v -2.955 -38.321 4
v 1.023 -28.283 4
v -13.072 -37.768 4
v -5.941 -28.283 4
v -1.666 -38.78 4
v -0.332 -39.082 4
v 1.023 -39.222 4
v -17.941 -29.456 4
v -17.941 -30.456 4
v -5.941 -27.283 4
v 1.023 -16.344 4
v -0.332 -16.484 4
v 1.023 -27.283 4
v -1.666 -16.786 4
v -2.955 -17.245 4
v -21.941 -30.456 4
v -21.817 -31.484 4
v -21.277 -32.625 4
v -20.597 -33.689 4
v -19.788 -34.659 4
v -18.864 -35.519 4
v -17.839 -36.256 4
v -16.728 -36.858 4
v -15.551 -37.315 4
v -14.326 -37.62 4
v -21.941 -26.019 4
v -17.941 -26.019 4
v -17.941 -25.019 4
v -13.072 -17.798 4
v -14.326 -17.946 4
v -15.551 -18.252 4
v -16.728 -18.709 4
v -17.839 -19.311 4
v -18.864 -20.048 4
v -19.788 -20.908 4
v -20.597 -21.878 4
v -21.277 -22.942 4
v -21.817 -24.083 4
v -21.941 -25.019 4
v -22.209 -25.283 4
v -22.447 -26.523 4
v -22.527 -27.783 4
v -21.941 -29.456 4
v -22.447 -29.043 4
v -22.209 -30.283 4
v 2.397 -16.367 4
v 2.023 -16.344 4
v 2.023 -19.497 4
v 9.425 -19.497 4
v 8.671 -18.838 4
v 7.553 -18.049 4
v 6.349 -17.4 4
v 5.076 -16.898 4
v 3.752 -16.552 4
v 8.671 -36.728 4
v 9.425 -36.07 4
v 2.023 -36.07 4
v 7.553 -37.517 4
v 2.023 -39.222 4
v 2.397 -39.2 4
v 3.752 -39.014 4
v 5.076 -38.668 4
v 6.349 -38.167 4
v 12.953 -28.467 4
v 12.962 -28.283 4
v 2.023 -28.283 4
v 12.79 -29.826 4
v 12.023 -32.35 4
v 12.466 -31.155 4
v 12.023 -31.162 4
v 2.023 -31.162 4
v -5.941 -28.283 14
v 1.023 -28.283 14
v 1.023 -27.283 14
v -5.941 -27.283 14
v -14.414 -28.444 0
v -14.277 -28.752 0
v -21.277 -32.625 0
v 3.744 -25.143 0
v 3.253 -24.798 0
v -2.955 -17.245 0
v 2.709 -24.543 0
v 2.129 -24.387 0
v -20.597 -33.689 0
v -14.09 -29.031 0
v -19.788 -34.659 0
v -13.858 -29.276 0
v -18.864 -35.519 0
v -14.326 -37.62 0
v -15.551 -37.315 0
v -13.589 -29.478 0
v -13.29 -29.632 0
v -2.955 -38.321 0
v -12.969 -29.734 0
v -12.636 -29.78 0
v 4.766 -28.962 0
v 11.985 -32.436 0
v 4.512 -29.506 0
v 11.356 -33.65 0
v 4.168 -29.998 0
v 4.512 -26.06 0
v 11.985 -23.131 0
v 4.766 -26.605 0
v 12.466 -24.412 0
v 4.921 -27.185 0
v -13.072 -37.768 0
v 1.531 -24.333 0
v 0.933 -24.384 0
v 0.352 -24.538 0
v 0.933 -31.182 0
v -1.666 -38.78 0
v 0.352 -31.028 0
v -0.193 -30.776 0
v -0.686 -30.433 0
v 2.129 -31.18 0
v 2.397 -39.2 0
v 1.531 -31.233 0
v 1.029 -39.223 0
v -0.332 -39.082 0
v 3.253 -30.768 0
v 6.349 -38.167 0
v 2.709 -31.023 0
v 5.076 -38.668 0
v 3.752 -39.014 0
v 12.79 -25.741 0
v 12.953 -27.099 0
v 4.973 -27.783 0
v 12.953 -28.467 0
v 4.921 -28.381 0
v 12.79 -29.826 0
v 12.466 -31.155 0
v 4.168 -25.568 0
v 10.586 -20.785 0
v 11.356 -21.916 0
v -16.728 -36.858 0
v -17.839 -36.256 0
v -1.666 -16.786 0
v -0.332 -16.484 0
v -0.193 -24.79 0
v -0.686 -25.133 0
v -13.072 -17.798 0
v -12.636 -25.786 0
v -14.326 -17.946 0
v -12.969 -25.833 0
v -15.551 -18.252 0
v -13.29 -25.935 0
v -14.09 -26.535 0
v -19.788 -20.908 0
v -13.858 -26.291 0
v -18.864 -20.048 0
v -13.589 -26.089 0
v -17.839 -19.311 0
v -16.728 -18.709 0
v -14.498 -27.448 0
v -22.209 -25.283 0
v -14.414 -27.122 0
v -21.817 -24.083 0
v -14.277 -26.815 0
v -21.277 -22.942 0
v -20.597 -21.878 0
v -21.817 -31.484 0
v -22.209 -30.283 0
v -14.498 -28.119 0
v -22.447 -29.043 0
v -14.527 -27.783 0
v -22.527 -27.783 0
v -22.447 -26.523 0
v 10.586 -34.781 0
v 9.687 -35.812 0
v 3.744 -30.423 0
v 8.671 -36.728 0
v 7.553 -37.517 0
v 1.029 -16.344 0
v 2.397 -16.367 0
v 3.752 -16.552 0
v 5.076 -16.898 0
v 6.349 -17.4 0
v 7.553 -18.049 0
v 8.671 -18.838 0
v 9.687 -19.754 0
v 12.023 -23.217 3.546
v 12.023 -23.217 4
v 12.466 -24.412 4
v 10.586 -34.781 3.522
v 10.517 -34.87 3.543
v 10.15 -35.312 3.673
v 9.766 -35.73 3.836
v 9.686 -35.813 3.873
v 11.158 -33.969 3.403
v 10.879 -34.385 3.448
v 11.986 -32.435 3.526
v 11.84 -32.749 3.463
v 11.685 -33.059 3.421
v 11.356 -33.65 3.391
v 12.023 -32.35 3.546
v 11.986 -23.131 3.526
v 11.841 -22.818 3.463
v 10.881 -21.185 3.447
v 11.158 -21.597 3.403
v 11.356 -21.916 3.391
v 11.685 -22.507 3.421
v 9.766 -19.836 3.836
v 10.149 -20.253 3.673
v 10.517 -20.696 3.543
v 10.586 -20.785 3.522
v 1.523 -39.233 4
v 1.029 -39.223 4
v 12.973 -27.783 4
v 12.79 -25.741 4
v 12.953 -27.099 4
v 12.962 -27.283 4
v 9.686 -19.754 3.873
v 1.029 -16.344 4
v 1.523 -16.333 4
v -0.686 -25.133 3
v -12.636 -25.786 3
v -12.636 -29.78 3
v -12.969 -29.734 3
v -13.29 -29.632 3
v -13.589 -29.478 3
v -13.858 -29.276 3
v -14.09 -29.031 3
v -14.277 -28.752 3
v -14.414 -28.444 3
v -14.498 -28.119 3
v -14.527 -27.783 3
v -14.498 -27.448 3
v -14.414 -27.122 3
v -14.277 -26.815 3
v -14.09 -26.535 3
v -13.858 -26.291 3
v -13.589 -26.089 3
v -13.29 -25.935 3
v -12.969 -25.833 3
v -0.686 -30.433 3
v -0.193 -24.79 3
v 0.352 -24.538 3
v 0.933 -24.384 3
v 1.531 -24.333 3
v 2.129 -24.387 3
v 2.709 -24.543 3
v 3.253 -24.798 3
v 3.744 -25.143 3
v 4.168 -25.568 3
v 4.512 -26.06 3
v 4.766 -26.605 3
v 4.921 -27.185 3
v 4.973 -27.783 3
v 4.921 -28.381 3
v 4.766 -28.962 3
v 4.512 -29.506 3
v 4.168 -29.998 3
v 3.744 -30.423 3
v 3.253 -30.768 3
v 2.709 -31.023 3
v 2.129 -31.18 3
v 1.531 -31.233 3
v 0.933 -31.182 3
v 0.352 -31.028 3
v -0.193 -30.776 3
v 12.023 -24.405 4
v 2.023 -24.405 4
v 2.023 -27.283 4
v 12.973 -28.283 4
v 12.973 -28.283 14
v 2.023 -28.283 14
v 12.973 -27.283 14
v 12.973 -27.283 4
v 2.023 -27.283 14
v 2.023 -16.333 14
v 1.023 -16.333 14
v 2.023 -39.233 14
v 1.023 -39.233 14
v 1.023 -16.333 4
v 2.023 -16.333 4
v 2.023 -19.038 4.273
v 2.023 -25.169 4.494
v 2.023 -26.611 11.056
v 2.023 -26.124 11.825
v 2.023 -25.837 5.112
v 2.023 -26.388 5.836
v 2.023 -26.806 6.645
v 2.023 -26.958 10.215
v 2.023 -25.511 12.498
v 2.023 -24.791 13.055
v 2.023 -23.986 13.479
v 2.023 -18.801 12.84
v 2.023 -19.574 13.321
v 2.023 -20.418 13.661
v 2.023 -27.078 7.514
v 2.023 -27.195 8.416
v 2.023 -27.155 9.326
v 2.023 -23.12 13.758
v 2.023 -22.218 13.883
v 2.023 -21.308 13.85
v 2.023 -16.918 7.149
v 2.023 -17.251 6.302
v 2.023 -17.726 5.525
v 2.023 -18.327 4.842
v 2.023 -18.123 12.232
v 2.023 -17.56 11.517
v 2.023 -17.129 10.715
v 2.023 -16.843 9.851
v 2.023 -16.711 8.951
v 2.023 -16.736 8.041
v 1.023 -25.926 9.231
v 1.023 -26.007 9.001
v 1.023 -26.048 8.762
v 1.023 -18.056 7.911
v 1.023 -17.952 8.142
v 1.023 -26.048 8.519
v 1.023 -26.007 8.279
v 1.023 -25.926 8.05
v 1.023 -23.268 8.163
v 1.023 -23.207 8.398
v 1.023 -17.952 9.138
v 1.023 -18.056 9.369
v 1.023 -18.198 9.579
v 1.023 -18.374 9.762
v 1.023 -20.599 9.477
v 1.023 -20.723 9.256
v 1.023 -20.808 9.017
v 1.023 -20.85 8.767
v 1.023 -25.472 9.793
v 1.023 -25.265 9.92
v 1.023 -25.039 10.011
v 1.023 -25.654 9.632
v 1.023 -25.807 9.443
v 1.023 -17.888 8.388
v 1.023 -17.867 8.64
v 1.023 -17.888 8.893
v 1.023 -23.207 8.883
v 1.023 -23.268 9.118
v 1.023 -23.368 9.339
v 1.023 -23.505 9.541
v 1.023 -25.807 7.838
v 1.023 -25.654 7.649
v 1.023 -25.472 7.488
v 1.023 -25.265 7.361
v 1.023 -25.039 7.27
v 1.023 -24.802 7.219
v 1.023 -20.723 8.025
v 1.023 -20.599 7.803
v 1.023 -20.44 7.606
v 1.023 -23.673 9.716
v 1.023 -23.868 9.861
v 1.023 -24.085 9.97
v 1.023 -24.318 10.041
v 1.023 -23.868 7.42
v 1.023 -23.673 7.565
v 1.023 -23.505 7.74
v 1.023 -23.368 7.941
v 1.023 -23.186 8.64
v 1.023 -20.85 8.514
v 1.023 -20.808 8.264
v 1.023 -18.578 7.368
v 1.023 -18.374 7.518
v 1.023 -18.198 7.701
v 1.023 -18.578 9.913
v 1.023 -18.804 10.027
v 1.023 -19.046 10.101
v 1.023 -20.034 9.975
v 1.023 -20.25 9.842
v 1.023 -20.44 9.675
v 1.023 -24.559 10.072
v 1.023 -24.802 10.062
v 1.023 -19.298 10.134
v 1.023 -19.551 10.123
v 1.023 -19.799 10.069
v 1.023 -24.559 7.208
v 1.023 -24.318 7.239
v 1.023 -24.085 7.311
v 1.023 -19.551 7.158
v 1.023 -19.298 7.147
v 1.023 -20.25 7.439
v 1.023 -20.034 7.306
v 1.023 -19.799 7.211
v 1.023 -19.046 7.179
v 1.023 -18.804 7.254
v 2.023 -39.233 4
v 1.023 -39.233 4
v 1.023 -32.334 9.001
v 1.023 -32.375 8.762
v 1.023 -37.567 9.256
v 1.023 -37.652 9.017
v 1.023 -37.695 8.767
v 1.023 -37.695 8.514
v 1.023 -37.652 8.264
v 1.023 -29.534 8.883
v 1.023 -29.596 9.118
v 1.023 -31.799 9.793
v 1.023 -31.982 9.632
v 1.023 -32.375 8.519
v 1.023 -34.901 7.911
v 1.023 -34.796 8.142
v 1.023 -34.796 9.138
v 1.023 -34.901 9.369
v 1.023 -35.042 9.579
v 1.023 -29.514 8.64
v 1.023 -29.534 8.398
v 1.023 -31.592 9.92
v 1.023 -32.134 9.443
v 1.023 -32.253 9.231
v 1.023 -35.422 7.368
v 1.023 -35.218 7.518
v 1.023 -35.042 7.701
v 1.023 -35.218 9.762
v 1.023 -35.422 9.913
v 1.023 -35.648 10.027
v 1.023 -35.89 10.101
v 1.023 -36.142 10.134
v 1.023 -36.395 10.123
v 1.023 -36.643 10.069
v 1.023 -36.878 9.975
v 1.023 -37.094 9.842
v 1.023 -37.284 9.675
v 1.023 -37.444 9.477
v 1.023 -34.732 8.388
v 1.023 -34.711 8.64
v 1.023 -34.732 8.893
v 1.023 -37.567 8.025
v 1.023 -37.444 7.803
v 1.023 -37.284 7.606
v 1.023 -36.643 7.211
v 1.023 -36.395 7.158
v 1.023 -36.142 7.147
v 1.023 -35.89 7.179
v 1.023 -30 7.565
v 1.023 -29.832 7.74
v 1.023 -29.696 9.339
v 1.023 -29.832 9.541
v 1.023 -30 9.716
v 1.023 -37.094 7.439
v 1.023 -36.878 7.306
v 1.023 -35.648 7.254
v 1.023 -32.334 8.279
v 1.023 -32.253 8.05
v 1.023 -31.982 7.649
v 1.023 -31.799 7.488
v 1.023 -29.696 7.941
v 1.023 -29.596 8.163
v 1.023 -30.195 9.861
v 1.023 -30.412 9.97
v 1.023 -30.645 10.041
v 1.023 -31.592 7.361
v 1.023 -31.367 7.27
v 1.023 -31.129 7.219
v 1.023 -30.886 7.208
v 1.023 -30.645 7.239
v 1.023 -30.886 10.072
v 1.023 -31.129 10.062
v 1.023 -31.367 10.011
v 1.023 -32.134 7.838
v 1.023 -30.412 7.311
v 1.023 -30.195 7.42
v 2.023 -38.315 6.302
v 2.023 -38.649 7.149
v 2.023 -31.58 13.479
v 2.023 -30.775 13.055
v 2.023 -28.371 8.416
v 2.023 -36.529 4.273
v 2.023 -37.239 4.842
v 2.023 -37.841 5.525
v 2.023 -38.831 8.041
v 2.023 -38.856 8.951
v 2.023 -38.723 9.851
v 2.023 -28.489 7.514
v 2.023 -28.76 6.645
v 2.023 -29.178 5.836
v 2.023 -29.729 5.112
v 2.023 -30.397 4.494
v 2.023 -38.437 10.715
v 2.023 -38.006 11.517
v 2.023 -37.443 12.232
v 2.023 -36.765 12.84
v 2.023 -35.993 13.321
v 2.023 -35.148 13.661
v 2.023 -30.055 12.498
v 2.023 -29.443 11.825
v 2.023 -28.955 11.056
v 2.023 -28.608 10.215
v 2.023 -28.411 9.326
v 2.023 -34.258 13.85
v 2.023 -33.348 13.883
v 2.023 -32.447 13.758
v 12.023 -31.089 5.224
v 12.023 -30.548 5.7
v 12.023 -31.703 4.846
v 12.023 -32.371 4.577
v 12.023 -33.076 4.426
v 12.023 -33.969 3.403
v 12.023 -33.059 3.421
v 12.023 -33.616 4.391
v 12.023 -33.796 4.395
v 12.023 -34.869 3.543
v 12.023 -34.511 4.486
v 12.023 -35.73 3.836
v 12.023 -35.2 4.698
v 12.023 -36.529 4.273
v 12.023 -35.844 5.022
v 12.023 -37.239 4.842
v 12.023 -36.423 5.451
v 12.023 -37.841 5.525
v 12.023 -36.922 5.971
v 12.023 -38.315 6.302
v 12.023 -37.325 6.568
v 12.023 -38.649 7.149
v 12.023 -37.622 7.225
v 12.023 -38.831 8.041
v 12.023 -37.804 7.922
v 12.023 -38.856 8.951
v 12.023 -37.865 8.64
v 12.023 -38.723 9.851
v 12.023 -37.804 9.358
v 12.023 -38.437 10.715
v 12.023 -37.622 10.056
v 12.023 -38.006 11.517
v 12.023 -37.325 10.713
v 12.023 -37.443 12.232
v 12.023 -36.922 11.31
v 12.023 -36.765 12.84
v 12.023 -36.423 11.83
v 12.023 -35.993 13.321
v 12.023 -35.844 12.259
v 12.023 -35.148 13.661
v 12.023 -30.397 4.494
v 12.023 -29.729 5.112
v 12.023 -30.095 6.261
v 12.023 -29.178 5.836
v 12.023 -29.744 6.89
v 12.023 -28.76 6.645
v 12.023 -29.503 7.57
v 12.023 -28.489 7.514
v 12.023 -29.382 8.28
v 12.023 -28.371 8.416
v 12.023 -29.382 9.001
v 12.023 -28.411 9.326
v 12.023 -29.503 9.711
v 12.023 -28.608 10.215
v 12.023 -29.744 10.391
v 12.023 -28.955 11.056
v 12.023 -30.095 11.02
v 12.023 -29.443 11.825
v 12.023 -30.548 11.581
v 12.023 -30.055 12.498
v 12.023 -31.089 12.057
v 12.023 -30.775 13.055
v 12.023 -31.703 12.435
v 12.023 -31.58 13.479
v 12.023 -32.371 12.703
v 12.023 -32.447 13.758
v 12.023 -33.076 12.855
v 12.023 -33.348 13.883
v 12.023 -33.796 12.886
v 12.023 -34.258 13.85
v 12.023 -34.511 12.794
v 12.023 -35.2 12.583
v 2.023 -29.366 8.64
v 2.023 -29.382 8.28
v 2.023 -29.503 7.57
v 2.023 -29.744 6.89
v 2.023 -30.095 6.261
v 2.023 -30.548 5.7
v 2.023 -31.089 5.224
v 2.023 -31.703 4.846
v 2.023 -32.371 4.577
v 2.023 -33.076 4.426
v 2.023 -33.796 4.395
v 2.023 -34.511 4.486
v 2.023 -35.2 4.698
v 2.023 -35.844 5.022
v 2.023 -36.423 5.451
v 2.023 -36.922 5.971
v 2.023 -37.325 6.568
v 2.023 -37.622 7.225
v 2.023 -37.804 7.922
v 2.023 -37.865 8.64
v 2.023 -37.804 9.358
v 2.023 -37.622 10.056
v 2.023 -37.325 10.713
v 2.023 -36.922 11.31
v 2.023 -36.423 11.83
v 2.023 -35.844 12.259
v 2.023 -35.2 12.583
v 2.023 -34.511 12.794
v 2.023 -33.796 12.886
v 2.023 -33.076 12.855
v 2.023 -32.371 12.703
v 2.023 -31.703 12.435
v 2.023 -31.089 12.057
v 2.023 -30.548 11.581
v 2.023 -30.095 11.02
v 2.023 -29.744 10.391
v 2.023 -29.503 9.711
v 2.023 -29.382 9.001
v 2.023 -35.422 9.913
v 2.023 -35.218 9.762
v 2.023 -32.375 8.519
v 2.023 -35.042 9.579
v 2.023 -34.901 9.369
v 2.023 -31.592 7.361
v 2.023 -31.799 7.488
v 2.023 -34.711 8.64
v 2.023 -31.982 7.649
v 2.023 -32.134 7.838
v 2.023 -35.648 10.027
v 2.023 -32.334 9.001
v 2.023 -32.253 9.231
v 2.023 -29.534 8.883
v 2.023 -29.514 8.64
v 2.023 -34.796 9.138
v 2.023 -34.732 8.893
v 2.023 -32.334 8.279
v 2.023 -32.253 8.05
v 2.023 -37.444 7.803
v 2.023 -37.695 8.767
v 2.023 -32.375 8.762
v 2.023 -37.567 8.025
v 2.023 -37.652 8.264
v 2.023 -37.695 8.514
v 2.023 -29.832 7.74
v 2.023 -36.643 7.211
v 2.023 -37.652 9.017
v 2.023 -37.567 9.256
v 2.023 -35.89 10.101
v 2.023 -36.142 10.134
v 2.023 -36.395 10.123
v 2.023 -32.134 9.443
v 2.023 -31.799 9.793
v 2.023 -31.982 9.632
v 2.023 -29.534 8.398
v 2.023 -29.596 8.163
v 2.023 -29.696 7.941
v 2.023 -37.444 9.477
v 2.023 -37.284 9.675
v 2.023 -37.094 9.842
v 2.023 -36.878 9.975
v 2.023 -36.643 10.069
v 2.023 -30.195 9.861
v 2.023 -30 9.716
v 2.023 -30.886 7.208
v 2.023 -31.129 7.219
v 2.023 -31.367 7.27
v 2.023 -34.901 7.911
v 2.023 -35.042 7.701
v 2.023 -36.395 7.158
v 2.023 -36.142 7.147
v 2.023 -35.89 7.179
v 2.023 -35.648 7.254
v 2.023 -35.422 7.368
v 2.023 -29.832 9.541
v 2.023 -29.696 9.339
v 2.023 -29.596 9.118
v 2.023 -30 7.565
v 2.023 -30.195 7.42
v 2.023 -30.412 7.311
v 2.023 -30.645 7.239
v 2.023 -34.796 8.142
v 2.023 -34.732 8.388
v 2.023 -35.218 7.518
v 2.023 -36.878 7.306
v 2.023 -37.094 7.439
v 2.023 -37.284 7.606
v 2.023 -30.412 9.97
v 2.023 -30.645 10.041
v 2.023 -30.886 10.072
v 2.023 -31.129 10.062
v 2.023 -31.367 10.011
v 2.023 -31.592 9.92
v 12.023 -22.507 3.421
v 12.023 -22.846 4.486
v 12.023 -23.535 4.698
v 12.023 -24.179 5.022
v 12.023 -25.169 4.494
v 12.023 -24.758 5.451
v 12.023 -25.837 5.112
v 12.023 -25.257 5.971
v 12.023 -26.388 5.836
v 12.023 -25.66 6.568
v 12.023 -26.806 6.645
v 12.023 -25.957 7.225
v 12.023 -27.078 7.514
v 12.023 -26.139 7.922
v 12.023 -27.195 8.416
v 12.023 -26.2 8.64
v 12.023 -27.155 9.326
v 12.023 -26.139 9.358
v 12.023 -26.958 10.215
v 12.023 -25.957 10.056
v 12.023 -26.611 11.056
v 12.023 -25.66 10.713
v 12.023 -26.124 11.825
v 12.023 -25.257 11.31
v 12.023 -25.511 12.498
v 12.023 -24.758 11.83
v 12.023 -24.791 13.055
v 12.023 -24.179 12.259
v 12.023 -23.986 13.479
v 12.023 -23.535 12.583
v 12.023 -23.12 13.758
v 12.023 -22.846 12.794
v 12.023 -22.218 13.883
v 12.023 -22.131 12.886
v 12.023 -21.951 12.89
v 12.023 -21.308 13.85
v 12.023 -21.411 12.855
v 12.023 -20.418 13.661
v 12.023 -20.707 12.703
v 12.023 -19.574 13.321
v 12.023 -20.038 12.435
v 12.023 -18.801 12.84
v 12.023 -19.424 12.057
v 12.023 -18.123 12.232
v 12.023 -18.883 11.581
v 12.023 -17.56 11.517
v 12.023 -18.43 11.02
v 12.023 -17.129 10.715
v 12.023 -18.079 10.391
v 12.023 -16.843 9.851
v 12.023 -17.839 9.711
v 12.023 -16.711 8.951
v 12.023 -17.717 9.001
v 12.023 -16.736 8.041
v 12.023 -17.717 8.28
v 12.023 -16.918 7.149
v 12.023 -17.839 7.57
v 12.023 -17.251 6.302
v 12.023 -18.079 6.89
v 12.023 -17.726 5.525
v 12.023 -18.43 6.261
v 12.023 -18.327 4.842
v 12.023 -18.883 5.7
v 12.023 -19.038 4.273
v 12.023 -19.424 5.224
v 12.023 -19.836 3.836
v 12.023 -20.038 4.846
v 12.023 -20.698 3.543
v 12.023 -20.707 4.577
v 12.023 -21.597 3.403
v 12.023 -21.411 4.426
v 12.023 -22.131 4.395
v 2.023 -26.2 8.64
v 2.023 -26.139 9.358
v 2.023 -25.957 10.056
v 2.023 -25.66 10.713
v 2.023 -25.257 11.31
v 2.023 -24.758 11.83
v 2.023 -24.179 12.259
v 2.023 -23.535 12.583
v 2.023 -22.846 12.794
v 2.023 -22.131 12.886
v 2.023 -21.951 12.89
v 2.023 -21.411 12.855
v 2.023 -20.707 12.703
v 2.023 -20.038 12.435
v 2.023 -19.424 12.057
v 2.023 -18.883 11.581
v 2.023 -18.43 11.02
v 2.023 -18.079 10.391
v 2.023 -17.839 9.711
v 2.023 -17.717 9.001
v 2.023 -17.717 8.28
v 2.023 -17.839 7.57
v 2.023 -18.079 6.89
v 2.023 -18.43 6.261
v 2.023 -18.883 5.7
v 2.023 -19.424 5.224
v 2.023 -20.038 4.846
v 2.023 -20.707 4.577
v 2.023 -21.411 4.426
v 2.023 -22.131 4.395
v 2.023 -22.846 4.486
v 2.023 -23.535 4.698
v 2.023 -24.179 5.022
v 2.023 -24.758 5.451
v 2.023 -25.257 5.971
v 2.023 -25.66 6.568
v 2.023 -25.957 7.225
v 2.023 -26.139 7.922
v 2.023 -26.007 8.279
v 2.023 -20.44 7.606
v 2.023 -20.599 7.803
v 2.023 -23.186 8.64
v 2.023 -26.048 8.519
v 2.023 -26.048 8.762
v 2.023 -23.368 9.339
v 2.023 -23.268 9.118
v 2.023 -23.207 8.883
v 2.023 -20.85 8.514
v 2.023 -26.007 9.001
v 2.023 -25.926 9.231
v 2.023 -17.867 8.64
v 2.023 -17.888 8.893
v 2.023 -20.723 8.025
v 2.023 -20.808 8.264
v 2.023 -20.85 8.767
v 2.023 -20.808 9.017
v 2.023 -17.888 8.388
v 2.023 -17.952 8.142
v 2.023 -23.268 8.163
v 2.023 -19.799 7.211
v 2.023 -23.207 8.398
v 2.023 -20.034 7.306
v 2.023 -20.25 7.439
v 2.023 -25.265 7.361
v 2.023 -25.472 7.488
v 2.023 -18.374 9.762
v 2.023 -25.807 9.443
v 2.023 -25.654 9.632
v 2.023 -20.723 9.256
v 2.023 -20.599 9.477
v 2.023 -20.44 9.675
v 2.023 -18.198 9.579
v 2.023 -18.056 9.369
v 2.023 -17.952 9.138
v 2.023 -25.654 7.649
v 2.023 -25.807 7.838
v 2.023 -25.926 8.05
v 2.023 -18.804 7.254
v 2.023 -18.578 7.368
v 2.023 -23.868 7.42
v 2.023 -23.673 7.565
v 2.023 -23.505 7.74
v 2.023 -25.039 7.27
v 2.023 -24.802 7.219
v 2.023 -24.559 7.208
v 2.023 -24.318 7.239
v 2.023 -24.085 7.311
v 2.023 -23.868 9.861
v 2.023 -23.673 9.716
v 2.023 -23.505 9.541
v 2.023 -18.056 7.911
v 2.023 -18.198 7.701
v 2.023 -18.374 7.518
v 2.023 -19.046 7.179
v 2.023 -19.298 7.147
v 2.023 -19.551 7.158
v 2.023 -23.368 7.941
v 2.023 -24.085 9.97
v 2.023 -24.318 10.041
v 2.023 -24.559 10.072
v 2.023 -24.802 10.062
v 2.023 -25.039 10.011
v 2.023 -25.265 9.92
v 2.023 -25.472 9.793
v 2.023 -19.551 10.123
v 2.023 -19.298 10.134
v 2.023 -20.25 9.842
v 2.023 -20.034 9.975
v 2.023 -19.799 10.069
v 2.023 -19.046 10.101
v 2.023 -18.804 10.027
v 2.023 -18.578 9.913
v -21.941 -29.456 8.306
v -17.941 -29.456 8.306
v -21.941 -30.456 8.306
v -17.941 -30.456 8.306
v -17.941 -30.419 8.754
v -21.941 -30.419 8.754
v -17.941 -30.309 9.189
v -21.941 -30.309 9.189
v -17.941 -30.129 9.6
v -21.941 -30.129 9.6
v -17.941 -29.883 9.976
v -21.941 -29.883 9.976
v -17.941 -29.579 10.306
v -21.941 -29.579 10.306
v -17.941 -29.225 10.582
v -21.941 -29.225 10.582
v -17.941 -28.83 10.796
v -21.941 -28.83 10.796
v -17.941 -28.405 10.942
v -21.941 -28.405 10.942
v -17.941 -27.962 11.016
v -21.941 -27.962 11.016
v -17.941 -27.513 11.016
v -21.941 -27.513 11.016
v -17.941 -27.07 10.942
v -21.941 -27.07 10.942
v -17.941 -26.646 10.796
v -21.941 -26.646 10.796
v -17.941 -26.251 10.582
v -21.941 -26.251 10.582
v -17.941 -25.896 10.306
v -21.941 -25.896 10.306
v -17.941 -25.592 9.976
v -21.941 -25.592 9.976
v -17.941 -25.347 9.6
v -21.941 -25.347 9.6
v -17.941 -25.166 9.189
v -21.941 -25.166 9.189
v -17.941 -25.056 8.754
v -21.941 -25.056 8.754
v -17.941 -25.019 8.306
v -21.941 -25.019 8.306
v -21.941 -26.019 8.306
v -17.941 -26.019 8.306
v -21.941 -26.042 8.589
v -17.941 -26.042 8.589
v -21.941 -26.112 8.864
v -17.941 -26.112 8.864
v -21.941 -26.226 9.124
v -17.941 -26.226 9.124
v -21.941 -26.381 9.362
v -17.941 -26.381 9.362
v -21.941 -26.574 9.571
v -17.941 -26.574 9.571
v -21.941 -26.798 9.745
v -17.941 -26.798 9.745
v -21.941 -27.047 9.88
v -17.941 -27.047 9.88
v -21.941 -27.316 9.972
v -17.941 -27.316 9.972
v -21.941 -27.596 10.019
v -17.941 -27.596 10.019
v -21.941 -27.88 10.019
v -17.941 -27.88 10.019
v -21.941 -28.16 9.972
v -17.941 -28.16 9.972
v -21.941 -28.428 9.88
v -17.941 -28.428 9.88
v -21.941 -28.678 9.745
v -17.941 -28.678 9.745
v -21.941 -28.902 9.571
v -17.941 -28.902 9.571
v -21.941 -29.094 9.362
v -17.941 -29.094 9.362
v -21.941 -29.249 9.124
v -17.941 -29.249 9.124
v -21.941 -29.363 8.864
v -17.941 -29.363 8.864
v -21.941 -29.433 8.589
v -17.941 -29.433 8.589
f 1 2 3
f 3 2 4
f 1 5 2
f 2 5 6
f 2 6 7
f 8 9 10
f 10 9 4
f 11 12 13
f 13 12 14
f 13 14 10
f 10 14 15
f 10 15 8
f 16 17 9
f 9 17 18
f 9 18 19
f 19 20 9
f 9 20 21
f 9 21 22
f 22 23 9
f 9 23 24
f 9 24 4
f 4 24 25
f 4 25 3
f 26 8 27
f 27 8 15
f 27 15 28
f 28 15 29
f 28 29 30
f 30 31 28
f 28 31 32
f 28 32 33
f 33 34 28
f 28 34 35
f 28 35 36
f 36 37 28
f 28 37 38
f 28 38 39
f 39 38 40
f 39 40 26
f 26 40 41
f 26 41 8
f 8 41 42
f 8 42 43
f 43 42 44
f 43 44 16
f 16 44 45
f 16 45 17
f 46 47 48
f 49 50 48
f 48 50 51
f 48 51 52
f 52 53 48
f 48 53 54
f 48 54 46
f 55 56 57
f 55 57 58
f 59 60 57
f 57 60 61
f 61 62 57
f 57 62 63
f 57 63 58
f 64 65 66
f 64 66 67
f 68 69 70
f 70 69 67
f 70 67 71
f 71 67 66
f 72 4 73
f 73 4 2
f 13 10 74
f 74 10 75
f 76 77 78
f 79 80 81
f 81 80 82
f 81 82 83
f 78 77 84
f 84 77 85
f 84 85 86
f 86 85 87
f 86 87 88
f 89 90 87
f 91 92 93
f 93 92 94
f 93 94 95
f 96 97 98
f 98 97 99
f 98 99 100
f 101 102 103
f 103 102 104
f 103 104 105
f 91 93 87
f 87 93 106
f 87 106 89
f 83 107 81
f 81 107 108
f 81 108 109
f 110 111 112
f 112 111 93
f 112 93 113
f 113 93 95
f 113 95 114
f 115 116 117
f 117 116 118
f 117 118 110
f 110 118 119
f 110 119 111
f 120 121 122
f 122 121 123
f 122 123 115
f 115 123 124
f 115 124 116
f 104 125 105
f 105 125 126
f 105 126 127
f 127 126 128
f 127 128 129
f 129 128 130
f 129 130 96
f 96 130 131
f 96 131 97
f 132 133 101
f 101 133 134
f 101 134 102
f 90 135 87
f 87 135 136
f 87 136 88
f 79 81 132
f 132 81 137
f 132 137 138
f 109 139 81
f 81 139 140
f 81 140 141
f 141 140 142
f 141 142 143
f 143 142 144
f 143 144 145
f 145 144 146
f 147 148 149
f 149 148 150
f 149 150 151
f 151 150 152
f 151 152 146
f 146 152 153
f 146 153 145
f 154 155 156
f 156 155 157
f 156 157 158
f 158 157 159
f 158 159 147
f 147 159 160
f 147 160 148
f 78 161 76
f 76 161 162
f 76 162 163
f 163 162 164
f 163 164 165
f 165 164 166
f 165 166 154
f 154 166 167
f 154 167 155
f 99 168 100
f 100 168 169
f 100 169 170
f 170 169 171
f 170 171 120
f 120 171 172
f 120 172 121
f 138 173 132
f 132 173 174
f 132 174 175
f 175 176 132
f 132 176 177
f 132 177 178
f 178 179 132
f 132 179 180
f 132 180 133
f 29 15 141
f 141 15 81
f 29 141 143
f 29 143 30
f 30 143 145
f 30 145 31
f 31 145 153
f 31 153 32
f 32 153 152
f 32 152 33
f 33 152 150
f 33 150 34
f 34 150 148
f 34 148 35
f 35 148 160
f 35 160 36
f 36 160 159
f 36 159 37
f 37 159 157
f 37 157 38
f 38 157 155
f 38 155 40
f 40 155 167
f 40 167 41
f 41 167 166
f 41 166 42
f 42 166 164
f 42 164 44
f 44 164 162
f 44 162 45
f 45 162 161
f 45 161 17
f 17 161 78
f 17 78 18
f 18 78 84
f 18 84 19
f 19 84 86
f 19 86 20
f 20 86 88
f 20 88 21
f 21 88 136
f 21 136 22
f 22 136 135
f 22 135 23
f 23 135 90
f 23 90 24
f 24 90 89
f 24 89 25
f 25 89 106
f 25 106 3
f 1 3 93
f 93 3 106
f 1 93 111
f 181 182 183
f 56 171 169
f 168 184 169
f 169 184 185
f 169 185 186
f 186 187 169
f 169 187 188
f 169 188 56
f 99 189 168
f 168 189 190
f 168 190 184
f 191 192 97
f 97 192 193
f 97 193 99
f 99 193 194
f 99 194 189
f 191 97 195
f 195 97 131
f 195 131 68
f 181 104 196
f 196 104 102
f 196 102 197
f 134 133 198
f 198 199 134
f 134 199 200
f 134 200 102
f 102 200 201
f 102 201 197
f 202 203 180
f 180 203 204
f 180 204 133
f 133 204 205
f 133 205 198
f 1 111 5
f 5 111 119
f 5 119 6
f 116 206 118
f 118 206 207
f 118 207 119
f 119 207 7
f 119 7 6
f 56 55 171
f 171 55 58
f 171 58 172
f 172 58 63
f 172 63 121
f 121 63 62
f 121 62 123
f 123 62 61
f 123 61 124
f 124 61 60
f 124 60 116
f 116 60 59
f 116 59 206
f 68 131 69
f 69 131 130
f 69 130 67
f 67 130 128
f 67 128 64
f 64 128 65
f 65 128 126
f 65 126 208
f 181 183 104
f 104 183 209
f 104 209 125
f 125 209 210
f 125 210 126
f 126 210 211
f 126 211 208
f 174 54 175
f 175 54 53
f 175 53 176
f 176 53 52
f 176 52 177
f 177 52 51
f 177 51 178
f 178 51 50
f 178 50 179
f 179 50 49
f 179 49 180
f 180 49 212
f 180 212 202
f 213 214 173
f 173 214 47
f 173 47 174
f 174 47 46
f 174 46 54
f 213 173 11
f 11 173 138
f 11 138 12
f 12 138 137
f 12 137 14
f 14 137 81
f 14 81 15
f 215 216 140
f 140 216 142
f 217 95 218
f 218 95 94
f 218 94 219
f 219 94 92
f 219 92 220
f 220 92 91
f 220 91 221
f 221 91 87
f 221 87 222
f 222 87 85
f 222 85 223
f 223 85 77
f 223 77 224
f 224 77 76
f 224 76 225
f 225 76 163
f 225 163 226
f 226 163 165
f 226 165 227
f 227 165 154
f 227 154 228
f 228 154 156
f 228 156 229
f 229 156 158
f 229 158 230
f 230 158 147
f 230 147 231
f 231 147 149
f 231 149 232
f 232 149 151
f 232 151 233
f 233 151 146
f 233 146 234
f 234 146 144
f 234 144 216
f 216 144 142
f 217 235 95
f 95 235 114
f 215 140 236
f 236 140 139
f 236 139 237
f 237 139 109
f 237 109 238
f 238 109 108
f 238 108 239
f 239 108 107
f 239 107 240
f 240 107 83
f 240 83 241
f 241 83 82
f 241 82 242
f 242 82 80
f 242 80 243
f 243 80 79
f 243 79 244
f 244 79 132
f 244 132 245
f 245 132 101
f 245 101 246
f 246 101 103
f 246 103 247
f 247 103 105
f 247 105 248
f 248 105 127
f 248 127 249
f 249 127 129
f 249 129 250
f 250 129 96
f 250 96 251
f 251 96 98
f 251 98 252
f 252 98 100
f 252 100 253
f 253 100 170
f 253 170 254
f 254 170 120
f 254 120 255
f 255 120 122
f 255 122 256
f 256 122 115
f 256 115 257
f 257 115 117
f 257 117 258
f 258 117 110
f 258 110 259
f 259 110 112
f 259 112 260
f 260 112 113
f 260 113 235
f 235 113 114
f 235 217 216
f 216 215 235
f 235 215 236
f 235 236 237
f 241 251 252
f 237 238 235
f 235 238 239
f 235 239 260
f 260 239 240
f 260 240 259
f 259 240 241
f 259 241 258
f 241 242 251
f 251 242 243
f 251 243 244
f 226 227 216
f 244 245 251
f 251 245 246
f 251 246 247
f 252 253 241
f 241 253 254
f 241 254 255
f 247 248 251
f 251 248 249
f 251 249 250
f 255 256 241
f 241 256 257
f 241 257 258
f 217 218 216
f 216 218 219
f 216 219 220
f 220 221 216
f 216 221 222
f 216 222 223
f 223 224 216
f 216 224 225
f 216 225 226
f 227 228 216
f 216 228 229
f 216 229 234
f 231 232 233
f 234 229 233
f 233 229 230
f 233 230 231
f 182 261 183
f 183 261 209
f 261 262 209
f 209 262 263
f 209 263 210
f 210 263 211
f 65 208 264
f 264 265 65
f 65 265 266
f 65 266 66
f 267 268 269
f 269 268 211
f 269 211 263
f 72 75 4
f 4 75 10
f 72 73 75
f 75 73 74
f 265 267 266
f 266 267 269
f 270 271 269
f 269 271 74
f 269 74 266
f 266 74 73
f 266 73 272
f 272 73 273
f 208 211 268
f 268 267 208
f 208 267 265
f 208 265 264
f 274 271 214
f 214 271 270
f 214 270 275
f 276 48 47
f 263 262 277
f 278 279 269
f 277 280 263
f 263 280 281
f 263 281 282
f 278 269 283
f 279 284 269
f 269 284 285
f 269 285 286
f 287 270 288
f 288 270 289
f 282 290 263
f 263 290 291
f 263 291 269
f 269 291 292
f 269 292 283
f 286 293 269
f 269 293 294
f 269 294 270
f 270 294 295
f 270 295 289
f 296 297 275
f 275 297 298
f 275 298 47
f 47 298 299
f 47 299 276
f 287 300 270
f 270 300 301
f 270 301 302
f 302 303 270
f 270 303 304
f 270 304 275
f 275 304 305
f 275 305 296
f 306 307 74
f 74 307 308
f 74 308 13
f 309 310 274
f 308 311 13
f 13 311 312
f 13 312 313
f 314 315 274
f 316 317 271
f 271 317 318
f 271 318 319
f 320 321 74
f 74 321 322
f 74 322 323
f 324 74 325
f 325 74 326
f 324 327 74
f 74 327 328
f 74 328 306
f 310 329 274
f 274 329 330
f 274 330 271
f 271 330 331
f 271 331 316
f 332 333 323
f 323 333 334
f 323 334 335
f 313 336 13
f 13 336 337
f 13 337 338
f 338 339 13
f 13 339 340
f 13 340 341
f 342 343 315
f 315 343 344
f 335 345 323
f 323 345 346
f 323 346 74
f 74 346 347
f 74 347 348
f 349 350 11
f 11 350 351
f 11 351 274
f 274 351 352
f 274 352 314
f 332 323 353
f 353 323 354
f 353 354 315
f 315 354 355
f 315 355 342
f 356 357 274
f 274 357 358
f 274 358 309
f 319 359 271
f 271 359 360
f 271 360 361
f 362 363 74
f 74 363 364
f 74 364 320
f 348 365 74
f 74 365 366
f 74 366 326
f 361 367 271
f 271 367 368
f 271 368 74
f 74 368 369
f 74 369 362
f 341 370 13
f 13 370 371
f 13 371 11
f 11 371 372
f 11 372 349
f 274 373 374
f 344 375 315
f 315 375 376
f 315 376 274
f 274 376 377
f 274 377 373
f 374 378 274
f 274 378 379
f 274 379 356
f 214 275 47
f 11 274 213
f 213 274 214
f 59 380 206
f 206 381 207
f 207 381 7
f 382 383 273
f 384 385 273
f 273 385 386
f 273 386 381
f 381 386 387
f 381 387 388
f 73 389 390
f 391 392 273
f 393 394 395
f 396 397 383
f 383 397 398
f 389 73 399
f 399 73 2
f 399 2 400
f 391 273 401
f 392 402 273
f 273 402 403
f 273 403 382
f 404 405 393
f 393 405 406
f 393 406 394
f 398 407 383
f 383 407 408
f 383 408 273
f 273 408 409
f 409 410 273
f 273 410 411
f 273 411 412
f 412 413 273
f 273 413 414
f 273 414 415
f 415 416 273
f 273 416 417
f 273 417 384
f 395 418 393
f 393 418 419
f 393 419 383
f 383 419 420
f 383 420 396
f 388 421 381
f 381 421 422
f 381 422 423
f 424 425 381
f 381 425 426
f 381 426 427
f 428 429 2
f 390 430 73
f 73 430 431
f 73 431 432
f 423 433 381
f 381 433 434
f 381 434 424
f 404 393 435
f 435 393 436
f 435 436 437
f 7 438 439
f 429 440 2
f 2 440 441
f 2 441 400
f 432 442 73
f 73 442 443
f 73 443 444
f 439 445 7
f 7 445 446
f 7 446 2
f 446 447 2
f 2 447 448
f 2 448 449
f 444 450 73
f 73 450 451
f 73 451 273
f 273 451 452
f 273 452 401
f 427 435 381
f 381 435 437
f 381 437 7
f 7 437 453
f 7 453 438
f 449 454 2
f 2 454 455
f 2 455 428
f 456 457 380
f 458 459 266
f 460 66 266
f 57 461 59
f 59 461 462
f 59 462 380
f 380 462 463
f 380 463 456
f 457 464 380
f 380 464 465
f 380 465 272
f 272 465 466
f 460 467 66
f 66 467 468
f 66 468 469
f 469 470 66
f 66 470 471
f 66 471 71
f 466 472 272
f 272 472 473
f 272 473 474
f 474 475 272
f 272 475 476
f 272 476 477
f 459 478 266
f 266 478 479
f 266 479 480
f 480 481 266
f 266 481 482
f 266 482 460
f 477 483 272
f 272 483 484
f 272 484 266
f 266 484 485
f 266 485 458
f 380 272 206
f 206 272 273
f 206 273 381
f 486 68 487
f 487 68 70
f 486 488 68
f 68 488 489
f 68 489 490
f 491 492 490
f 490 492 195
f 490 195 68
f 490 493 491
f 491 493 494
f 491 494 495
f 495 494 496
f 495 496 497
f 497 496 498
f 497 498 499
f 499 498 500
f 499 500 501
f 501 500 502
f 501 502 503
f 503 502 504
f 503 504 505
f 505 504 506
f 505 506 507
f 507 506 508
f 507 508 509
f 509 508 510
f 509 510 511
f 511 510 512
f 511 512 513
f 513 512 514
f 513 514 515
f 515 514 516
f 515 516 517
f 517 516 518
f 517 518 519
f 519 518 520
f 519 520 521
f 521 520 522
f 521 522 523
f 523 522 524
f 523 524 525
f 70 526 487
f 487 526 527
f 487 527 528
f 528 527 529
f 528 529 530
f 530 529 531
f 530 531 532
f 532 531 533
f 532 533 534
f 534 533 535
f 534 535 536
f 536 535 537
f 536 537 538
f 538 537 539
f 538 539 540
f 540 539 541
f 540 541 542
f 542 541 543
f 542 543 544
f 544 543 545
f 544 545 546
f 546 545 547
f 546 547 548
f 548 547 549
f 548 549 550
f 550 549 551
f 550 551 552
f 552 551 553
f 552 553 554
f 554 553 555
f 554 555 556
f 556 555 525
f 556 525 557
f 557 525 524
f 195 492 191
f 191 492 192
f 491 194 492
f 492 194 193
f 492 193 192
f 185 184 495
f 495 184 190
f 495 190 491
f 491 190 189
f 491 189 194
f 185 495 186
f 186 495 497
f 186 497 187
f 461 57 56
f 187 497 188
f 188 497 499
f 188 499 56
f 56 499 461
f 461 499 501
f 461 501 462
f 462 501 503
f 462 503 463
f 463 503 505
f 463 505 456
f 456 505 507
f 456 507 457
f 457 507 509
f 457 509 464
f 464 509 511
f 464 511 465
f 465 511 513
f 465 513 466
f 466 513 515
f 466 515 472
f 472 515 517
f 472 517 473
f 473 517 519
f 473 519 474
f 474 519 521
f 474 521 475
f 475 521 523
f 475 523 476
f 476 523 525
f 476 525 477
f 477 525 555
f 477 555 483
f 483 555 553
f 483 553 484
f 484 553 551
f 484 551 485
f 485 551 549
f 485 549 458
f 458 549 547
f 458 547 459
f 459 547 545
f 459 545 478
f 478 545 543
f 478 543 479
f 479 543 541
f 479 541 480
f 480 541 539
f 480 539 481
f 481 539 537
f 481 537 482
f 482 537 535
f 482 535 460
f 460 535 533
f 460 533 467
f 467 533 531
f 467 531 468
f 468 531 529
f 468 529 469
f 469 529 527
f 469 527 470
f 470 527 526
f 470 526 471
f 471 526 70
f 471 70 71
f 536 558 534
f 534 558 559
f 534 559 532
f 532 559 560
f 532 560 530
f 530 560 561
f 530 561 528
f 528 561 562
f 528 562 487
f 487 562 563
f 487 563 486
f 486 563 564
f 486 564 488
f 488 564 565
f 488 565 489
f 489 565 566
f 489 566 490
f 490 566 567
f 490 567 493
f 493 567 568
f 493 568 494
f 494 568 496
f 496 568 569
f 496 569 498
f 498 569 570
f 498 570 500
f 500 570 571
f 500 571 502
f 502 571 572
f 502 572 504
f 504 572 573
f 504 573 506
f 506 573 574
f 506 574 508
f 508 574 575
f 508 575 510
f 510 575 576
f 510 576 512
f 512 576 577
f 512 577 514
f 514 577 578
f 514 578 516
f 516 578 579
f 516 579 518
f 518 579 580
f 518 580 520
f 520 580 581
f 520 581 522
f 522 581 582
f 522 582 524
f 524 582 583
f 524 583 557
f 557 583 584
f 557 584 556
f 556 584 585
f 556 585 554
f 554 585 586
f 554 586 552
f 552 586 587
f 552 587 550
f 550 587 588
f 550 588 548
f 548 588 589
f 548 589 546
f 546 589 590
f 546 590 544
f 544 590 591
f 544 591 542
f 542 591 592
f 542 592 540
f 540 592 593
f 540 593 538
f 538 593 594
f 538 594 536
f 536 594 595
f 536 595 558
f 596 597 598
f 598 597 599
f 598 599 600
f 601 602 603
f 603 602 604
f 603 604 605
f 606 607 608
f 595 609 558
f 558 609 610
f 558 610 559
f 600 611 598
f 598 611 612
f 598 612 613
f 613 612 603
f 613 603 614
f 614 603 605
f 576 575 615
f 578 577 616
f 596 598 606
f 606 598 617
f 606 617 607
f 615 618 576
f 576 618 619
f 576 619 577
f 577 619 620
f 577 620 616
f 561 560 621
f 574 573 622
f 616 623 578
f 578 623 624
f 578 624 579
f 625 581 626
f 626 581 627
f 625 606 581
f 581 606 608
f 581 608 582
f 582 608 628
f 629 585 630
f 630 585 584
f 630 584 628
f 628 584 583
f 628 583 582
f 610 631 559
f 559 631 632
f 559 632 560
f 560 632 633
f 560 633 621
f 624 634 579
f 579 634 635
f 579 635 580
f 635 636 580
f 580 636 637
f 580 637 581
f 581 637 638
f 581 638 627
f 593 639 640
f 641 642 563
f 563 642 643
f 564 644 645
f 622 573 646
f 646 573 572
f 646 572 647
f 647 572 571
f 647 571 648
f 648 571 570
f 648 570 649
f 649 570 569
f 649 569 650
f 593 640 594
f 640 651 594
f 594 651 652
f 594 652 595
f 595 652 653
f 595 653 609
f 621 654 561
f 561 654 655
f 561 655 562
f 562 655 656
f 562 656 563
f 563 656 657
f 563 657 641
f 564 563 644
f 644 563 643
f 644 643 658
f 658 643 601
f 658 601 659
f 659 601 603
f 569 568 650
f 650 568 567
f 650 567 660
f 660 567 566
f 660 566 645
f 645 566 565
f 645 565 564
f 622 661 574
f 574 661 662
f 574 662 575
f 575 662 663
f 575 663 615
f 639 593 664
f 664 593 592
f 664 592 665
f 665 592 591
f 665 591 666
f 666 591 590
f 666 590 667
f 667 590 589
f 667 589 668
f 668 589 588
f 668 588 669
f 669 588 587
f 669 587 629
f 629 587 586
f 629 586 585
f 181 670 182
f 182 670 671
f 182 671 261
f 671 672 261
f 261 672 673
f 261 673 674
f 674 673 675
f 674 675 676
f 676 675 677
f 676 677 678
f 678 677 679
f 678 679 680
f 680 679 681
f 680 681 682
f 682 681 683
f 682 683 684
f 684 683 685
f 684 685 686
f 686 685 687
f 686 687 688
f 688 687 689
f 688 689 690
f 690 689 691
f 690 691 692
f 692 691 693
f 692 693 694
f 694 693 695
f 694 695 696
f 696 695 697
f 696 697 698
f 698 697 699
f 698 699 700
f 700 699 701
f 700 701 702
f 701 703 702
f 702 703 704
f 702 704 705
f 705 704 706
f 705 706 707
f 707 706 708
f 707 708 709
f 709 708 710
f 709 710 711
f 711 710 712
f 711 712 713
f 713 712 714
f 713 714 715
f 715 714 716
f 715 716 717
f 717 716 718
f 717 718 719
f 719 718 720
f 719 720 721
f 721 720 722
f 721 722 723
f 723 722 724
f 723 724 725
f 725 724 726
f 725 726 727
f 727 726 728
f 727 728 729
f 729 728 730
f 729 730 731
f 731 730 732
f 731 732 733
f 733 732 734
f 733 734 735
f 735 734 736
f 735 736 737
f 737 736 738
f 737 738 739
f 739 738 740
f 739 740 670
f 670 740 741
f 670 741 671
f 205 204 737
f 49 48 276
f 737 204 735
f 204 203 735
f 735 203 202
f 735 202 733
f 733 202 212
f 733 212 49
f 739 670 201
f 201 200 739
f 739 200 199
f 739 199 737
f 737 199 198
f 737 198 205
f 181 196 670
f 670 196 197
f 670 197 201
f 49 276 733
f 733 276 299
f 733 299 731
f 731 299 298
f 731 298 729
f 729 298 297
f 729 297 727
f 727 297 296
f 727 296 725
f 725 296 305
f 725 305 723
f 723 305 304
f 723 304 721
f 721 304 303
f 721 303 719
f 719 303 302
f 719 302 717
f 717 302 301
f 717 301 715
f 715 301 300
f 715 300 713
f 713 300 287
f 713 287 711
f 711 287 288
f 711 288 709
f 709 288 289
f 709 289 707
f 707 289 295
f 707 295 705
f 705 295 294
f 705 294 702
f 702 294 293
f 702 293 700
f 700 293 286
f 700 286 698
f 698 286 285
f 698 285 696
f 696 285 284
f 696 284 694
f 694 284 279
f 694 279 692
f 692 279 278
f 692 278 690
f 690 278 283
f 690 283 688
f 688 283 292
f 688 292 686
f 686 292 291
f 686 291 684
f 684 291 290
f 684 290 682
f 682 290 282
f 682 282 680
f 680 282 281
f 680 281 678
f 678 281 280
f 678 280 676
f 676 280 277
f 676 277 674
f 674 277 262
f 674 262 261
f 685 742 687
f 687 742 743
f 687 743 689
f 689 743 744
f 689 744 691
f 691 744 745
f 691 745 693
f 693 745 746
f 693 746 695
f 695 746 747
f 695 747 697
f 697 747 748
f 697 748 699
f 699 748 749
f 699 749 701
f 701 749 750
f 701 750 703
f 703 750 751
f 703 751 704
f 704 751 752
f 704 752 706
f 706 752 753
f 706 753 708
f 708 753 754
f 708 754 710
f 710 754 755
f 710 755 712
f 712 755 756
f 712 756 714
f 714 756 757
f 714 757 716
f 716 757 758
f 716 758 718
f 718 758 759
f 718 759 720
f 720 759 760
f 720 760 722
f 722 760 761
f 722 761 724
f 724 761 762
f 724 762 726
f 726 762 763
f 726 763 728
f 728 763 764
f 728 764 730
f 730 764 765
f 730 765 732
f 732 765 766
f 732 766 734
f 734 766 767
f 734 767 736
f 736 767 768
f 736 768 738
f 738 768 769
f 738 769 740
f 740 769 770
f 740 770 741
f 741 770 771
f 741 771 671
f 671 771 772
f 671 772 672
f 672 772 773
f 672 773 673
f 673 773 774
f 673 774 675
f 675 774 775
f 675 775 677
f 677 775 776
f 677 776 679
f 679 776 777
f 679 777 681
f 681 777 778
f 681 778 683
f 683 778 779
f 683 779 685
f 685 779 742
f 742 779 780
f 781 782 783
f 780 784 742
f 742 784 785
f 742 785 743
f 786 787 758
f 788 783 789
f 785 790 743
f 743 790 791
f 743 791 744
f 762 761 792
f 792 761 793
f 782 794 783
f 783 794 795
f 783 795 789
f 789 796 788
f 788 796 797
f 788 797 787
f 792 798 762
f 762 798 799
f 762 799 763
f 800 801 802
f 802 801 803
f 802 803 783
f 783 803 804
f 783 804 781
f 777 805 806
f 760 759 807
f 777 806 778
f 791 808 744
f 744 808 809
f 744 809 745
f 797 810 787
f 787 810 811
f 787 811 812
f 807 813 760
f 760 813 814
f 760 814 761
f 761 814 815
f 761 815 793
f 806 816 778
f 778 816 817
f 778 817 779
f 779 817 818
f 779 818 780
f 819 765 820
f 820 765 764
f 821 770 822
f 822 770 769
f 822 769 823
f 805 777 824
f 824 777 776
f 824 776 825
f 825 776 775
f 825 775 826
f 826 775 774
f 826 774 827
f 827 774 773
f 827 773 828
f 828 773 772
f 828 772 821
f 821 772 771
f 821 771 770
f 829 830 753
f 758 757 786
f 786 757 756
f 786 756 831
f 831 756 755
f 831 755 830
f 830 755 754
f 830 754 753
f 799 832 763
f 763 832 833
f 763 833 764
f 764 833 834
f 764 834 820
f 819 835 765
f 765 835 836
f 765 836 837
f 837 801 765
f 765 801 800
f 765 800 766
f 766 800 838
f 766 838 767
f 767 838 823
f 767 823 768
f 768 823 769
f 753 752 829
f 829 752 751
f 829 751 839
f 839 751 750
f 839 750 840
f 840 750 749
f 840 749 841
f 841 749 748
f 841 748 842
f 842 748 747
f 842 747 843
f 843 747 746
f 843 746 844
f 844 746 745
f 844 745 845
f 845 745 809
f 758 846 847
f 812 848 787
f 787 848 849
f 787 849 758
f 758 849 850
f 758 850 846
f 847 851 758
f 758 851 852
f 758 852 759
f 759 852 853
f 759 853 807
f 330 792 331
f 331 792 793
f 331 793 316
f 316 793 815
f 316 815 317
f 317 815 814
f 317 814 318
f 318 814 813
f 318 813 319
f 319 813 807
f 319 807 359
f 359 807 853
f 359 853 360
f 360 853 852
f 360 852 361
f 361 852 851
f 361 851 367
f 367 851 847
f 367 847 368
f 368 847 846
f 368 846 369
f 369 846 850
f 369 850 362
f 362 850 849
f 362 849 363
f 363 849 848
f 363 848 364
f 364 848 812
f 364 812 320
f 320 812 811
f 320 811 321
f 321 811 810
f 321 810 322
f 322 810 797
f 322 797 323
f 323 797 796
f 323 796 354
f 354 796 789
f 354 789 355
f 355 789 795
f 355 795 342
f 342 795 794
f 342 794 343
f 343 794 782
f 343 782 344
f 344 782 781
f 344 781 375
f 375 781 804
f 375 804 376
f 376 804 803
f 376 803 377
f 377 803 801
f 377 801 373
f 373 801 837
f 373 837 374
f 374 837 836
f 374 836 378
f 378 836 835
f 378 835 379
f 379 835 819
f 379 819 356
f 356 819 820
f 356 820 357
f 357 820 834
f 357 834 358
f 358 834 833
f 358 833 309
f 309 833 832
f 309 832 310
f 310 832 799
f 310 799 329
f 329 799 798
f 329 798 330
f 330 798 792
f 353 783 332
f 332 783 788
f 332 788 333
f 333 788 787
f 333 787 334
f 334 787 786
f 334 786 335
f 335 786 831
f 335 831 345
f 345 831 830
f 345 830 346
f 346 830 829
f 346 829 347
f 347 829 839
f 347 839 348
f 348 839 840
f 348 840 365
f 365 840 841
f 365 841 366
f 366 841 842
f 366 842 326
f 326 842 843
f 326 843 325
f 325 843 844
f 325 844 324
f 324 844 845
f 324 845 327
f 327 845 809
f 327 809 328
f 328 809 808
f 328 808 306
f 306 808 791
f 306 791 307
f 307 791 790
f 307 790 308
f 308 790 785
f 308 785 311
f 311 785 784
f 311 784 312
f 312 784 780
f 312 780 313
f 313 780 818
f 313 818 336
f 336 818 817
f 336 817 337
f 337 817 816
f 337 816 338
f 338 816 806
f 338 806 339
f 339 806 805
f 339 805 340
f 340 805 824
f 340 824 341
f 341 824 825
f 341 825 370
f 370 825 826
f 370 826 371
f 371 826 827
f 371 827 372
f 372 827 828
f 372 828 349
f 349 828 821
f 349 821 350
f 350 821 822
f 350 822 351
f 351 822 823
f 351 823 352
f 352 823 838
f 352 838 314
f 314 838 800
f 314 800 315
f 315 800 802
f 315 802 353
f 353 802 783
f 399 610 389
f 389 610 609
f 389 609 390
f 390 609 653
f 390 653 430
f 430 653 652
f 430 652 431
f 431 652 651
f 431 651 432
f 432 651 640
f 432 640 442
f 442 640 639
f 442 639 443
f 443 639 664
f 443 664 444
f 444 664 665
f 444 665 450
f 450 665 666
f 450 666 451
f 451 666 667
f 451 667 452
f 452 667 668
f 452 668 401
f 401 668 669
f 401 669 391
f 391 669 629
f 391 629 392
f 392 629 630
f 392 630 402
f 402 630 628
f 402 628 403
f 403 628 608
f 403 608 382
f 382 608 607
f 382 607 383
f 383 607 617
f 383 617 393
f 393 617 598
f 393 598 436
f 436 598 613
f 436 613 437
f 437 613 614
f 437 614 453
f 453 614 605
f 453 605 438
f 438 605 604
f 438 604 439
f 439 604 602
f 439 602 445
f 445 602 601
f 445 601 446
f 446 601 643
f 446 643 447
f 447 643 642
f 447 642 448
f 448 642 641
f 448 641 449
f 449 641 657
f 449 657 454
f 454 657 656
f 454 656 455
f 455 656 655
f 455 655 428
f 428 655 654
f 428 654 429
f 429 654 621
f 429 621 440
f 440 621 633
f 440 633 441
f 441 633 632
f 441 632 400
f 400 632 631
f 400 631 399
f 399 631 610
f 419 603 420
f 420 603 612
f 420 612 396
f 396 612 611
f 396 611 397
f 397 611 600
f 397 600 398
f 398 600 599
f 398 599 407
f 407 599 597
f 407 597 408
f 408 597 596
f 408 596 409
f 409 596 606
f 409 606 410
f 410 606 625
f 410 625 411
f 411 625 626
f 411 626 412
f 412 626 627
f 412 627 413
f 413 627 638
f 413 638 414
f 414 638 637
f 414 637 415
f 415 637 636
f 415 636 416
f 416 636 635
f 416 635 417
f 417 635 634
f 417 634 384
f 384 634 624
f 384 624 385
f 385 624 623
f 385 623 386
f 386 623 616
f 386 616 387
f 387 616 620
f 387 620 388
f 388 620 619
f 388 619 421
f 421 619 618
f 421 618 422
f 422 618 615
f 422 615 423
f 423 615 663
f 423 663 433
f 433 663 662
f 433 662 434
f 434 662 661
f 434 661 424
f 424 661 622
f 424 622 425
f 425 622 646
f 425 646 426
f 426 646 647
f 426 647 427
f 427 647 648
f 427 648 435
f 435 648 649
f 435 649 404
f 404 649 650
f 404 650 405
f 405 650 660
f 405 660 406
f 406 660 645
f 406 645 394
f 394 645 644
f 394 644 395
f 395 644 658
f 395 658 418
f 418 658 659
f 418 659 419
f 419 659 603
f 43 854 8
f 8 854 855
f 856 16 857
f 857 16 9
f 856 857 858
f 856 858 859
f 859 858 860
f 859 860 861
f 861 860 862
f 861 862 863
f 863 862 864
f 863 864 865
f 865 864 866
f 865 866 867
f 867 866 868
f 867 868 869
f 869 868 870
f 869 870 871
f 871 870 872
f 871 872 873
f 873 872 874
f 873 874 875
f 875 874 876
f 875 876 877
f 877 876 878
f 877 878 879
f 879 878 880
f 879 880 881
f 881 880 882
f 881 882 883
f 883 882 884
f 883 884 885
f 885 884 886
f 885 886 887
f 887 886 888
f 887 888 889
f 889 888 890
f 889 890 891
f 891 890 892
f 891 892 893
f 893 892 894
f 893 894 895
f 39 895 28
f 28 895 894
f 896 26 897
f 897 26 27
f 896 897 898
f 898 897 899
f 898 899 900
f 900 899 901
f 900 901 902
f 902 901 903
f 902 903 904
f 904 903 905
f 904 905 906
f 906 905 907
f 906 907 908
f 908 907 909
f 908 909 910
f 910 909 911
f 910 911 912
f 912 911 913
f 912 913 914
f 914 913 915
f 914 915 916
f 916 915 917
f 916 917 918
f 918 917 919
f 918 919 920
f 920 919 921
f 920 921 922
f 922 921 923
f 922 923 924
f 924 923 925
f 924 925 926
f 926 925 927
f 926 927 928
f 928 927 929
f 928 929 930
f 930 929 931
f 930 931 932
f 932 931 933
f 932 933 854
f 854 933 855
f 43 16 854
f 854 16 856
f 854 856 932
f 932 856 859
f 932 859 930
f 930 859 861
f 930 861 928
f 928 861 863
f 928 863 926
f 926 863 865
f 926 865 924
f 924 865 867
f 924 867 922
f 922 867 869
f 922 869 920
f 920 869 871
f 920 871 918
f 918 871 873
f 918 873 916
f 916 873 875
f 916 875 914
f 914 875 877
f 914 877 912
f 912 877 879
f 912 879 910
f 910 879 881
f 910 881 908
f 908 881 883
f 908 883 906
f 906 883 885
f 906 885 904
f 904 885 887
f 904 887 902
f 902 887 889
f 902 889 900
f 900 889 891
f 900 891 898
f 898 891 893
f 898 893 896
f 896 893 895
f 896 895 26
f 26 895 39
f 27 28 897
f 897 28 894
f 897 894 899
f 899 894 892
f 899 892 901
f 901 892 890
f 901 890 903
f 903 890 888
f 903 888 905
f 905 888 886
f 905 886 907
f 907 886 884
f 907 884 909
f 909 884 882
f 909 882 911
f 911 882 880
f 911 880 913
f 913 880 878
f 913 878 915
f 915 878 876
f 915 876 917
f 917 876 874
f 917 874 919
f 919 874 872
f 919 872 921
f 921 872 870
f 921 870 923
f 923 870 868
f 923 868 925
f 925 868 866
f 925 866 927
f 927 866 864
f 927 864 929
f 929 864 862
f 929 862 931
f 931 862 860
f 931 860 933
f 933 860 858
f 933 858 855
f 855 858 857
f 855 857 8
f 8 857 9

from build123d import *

# Parameters (mm, degrees)
EXTRUDE_THIN1_DEPTH     = 3
BOSS_EXTRUDE1_DEPTH     = 1
EXTRUDE_THIN2_OUTLINE_W = 18.914434681
EXTRUDE_THIN2_OUTLINE_H = 1
EXTRUDE_THIN2_DEPTH     = 10
SKETCH4_4_W             = 1
SKETCH4_4_H             = 22.9
EXTRUDE_THIN3_DEPTH     = 10
SKETCH5_R               = 5.249261594
SKETCH5_R_2             = 4.249261594
EXTRUDE_THIN4_DEPTH     = 10
SKETCH5_4_R             = 1.494593426
SKETCH5_4_R_2           = 1.433178879
CUT_EXTRUDE1_DEPTH      = 10
EXTRUDE_THIN5_START     = 12
EXTRUDE_THIN5_DEPTH     = 4


# Read off the part's stored shape, not the designer's step: Extrude-Thin1, Extrude-Thin2
with BuildPart() as part:
    # Extrude-Thin1 outline → Extrude-Thin1 (new body)
    with BuildSketch(Plane.XY):
        with BuildLine():
            Line((-2.95492513, -17.245283727), (-13.072339205, -17.798123277))
            ThreePointArc((-13.072339205, -17.798123277), (-22.52672937, -27.783227678), (-13.072339205, -37.76833208))
            Line((-13.072339205, -37.76833208), (-2.95492513, -38.32117163))
            ThreePointArc((-2.95492513, -38.32117163), (12.97327063, -27.783227679), (-2.95492513, -17.245283727))
        make_face()
        with BuildLine():
            ThreePointArc((-12.635851337, -29.780248558), (-14.52672937, -27.783227678), (-12.635851337, -25.786206798))
            Line((-12.635851337, -25.786206798), (-0.685801573, -25.133227678))
            ThreePointArc((-0.685801573, -25.133227678), (4.97327063, -27.783227678), (-0.685801573, -30.433227678))
            Line((-0.685801573, -30.433227678), (-12.635851337, -29.780248558))
        make_face(mode=Mode.SUBTRACT)
    extrude(amount=EXTRUDE_THIN1_DEPTH)

    # Sketch3 → Boss-Extrude1 (add)
    with BuildSketch(Plane.XY.offset(3)):
        with BuildLine():
            Line((-2.95492513, -17.245283727), (-13.072339205, -17.798123277))
            ThreePointArc((-13.072339205, -17.798123277), (-22.52672937, -27.783227678), (-13.072339205, -37.76833208))
            Line((-13.072339205, -37.76833208), (-2.95492513, -38.32117163))
            ThreePointArc((-2.95492513, -38.32117163), (12.97327063, -27.783227678), (-2.95492513, -17.245283727))
        make_face()
    extrude(amount=BOSS_EXTRUDE1_DEPTH)

    # Extrude-Thin2 outline → Extrude-Thin2 (add)
    with BuildSketch(Plane.XY.offset(4)):
        with Locations((3.516053289, -27.783227678)):
            Rectangle(EXTRUDE_THIN2_OUTLINE_W, EXTRUDE_THIN2_OUTLINE_H)
    extrude(amount=EXTRUDE_THIN2_DEPTH)

    # Sketch4<4> → Extrude-Thin3 (add)
    with BuildSketch(Plane.XY.offset(4)):
        with Locations((1.52327063, -27.783227678)):
            Rectangle(SKETCH4_4_W, SKETCH4_4_H)
        Polygon((12.97327063, -27.283227678), (-2.95492513, -27.283227678), (-5.941164051, -27.283227678), (-5.941164051, -28.283227678), (-2.95492513, -28.283227678), (12.97327063, -28.283227678), align=None)
    extrude(amount=EXTRUDE_THIN3_DEPTH)

    # Sketch5 → Extrude-Thin4 (add)
    # profile 1 of 2: a face of its own
    with BuildSketch(Plane(origin=(2.02327063, 0, 0), x_dir=(0, 0, -1), z_dir=(1, 0, 0))):
        with Locations((-8.640362386, -33.615627273)):
            Circle(SKETCH5_R)
        with Locations((-8.640362386, -33.615627273)):
            Circle(SKETCH5_R_2, mode=Mode.SUBTRACT)
    # profile 2 of 2: a face of its own
    with BuildSketch(Plane(origin=(2.02327063, 0, 0), x_dir=(0, 0, -1), z_dir=(1, 0, 0))):
        with Locations((-8.640362386, -21.950828084)):
            Circle(SKETCH5_R)
        with Locations((-8.640362386, -21.950828084)):
            Circle(SKETCH5_R_2, mode=Mode.SUBTRACT)
    extrude(amount=EXTRUDE_THIN4_DEPTH)

    # Sketch5<4> → Cut-Extrude1 (cut)
    with BuildSketch(Plane(origin=(2.02327063, 0, 0), x_dir=(0, 0, -1), z_dir=(1, 0, 0))):
        with Locations(Location((-8.640362386, -36.205301228, 0), (0, 0, 90))):
            Circle(SKETCH5_4_R)
        with Locations(Location((-8.640362386, -30.946846255, 0), (0, 0, 90))):
            Circle(SKETCH5_4_R_2)
        with Locations(Location((-8.640362386, -24.619609101, 0), (0, 0, 90))):
            Circle(SKETCH5_4_R_2)
        with Locations(Location((-8.640362386, -19.361154128, 0), (0, 0, 90))):
            Circle(SKETCH5_4_R)
    extrude(amount=-CUT_EXTRUDE1_DEPTH, mode=Mode.SUBTRACT)

    # Sketch6 → Extrude-Thin5 (add)
    with BuildSketch(Plane.ZY.offset(5.941164051).offset(EXTRUDE_THIN5_START)):
        with BuildLine():
            Line((4, -25.018913287), (8.306214493, -25.018913287))
            ThreePointArc((8.306214493, -25.018913287), (11.024963262, -27.737662056), (8.306214493, -30.456410826))
            Line((8.306214493, -30.456410826), (4, -30.456410826))
            Line((4, -30.456410826), (4, -29.456410826))
            Line((4, -29.456410826), (8.306214493, -29.456410826))
            ThreePointArc((8.306214493, -29.456410826), (10.024963262, -27.737662056), (8.306214493, -26.018913287))
            Line((8.306214493, -26.018913287), (4, -26.018913287))
            Line((4, -26.018913287), (4, -25.018913287))
        make_face()
    extrude(amount=EXTRUDE_THIN5_DEPTH)


solid = part.part
